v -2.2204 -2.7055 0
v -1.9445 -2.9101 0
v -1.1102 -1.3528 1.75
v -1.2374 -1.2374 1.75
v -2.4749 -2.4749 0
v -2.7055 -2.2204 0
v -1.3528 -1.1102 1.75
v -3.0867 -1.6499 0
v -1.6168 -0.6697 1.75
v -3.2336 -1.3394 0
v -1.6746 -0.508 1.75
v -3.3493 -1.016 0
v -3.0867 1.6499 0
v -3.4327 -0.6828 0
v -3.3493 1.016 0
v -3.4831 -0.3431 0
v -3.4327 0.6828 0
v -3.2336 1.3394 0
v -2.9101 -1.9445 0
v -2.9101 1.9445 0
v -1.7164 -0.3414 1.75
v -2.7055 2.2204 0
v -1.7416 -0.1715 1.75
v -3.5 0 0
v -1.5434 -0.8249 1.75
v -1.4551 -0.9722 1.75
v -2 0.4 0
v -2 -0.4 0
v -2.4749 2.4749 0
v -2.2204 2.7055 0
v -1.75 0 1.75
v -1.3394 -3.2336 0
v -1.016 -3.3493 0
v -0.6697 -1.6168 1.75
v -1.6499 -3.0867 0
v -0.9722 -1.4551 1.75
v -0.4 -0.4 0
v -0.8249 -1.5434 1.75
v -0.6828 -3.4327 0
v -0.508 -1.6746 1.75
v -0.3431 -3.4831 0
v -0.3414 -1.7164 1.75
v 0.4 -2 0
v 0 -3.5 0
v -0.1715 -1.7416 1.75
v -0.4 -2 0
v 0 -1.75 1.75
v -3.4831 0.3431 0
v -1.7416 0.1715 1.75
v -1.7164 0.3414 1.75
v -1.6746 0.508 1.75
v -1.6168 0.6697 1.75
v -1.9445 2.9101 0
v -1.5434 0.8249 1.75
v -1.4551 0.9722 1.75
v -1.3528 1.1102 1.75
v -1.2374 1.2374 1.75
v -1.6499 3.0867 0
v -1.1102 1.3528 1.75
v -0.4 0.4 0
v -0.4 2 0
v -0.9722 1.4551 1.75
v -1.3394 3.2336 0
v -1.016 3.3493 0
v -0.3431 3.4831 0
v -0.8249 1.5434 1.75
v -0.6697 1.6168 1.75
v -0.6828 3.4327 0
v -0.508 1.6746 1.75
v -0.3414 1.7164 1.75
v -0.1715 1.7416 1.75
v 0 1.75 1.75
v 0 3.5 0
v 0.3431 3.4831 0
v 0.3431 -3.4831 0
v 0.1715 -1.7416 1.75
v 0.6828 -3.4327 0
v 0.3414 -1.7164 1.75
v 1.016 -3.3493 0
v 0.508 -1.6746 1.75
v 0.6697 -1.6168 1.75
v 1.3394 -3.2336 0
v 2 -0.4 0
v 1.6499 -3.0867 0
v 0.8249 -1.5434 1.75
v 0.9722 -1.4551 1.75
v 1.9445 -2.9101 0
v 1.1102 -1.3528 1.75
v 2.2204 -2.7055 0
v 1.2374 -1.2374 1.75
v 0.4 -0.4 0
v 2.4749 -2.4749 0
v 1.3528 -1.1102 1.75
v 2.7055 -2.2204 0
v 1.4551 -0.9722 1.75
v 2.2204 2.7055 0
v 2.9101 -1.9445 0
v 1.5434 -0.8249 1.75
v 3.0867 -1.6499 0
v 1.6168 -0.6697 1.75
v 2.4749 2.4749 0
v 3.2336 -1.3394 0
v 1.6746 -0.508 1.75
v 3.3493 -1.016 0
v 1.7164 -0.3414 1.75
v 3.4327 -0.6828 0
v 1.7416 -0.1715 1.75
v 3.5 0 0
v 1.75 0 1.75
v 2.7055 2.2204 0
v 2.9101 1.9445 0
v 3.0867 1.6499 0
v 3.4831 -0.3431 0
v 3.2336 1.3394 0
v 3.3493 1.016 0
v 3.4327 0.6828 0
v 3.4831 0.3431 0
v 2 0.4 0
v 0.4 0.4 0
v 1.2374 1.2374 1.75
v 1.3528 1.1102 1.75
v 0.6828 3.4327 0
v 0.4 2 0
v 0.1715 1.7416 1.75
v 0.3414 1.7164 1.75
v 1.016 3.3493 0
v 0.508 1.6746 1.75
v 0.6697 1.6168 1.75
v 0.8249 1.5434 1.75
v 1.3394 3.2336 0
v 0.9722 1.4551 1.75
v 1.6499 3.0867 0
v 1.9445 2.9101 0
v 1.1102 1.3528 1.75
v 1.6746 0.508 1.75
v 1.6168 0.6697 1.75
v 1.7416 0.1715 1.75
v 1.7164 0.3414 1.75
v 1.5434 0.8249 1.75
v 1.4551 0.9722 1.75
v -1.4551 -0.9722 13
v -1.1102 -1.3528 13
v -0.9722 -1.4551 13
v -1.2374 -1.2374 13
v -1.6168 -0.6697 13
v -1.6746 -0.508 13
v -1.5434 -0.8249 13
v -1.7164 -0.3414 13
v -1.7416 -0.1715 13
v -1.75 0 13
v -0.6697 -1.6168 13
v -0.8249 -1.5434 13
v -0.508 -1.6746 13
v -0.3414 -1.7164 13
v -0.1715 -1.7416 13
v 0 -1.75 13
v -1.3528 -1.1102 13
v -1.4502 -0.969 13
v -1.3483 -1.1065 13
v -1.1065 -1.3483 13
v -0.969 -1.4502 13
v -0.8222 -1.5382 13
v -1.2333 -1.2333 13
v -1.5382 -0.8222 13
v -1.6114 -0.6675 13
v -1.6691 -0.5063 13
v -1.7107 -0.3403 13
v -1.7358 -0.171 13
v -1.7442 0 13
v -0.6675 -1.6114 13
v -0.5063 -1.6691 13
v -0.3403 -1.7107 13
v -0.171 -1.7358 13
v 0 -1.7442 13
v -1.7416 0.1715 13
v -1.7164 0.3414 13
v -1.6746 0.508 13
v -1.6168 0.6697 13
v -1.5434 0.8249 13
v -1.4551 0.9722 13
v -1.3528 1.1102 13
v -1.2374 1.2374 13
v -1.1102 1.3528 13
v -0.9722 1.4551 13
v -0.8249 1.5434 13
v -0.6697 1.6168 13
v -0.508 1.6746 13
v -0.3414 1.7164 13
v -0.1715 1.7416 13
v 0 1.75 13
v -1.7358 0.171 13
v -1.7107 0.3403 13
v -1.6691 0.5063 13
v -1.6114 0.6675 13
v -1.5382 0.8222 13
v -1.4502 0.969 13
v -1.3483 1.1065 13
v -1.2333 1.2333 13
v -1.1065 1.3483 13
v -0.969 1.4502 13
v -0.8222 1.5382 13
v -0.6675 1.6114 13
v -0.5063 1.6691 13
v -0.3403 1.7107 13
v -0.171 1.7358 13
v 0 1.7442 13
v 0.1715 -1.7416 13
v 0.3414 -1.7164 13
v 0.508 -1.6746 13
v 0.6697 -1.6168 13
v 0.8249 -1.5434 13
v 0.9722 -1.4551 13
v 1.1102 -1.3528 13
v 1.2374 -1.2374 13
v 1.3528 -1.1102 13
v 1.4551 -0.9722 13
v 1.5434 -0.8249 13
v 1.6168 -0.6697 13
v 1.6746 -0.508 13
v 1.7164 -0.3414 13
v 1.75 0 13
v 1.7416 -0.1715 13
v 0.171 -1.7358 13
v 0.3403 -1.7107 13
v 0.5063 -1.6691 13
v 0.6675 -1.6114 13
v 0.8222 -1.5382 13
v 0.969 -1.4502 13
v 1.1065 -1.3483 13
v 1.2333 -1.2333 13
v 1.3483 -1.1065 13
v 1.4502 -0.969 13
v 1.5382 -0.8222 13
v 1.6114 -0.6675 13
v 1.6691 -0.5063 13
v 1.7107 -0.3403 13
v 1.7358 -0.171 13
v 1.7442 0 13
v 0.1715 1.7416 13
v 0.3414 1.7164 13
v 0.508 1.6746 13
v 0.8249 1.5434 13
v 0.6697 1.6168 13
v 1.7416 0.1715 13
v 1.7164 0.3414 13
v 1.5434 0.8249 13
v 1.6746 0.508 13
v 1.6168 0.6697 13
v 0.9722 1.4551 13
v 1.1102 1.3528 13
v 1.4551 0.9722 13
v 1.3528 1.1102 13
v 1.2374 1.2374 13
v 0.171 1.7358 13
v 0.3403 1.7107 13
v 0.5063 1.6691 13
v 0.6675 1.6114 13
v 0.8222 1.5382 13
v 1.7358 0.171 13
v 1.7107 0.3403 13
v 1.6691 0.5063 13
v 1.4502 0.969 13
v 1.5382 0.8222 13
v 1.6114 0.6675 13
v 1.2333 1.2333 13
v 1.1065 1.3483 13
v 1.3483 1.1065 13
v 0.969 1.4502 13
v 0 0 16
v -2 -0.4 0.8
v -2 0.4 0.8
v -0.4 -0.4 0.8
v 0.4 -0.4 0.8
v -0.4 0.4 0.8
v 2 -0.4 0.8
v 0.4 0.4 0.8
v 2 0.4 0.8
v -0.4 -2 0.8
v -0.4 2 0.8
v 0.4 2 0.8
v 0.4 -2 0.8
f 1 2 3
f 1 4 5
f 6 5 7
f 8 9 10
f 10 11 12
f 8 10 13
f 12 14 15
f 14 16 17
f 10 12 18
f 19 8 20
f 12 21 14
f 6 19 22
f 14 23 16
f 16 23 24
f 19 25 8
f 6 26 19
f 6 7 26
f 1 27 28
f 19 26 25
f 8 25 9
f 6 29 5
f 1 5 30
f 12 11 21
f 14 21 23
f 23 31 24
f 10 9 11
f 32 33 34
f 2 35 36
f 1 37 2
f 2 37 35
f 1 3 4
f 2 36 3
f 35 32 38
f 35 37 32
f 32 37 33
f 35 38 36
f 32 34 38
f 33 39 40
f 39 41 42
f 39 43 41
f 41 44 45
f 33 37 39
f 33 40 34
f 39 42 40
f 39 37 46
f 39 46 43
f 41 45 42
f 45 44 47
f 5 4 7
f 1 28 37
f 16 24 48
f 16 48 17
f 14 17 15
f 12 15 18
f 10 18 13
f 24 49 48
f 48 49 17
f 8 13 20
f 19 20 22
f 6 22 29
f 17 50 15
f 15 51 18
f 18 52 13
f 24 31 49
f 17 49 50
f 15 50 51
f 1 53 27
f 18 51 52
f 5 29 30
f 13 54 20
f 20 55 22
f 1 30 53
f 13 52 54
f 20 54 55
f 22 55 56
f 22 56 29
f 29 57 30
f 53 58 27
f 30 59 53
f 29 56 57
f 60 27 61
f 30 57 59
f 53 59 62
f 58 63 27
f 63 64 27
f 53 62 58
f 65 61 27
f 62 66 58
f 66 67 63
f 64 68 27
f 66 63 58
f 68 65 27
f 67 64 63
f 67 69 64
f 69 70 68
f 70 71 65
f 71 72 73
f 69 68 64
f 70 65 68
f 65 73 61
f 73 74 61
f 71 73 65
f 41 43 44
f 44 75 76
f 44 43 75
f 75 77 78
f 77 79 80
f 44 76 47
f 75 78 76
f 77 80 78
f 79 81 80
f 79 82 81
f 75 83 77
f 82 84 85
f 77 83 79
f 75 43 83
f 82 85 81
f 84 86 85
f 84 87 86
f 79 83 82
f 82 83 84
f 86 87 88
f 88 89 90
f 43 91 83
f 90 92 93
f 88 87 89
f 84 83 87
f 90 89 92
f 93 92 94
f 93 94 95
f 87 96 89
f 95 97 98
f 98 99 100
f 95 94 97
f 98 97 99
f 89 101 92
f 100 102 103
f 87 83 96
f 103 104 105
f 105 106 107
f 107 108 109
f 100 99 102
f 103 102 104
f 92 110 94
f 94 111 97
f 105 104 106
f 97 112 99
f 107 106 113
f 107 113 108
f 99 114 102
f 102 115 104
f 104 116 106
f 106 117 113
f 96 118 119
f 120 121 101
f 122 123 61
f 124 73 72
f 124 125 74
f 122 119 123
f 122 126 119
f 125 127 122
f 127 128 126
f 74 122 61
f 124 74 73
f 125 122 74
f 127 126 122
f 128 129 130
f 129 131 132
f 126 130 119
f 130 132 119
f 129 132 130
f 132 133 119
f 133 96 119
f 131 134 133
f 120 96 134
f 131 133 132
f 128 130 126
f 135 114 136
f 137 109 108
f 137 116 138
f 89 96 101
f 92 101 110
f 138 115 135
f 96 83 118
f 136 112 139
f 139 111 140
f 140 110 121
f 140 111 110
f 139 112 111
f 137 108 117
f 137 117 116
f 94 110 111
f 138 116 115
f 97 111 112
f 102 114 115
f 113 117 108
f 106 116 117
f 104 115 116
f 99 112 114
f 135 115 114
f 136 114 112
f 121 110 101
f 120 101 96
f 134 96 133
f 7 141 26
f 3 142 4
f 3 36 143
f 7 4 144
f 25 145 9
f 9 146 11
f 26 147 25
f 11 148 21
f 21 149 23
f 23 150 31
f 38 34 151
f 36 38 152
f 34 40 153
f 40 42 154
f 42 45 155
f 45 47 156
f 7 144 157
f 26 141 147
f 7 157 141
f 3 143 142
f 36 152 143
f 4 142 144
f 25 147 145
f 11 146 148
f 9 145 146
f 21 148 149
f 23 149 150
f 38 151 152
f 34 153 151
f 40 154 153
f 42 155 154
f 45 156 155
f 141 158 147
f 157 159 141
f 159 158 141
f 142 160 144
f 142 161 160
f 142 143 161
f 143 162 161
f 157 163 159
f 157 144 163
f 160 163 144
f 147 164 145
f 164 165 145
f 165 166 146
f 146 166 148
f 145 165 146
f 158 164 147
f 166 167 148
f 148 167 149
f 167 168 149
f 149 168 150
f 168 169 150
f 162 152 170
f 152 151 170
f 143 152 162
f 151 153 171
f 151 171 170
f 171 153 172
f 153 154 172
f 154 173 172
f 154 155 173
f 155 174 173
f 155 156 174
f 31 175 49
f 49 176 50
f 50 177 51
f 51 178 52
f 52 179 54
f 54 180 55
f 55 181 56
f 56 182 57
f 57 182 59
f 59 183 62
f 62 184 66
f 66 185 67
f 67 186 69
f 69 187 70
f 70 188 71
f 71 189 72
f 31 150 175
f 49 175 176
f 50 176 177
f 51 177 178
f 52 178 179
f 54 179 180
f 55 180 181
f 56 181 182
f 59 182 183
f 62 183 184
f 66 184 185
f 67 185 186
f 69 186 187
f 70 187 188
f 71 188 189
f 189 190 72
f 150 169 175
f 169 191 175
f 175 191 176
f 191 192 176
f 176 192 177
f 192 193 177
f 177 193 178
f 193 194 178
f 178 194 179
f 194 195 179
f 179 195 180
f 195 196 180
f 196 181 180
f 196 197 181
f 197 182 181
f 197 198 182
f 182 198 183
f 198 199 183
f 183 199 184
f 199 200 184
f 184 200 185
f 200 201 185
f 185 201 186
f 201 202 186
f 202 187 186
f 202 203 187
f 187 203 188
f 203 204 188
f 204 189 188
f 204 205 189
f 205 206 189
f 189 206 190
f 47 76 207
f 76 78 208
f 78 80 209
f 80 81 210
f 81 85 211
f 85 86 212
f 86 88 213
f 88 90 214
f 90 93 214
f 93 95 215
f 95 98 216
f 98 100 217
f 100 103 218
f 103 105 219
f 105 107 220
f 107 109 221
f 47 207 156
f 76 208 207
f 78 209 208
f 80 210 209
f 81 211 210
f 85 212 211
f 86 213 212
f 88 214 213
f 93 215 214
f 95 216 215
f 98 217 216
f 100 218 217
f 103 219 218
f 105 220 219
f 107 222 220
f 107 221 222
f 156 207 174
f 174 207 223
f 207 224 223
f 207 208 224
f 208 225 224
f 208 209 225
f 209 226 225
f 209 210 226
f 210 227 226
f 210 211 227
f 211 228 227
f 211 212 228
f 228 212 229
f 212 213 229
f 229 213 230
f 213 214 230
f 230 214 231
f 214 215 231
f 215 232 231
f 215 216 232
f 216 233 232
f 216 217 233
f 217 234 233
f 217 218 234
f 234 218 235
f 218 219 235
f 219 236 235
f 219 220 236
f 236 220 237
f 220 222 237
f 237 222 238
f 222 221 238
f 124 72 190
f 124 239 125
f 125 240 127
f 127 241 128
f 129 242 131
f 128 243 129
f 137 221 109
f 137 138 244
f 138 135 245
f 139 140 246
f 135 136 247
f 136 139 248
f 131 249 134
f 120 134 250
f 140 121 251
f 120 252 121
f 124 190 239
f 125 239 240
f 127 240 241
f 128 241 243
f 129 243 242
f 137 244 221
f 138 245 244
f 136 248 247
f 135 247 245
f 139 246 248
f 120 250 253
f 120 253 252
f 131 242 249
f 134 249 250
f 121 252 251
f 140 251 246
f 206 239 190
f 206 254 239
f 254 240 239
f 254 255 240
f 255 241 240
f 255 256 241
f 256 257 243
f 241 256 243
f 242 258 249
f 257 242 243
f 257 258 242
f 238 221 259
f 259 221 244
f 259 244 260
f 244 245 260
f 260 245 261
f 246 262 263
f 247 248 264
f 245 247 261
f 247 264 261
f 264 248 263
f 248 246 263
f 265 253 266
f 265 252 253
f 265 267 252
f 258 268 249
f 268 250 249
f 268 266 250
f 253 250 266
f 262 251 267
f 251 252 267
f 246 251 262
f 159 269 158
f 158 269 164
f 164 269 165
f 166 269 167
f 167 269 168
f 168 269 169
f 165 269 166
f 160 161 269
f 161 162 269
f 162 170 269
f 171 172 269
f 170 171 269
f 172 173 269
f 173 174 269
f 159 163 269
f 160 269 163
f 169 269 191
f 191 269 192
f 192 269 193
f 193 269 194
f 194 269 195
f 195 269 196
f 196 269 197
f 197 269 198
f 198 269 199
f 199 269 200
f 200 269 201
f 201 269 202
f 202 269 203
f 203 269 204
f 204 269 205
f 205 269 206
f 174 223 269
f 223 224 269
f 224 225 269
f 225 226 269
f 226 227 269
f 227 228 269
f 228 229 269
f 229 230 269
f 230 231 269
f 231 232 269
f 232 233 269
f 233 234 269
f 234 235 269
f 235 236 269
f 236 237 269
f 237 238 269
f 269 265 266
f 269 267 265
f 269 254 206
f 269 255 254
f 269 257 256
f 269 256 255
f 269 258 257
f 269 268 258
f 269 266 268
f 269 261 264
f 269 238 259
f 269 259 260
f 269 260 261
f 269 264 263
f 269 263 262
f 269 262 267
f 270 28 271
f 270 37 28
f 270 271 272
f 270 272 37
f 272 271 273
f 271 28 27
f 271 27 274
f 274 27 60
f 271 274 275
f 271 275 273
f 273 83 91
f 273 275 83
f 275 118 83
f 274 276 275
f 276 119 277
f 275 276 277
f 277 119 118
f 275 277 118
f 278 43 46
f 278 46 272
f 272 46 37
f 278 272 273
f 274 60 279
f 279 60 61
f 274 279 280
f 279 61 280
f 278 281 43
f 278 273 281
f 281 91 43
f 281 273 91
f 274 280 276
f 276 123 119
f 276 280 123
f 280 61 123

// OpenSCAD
// file: native_adapter.scad
$fn = 50;

difference() {
	union() {
		translate(v = [0, 0, 0]) {
			rotate(a = [0, 0, 0]) {
				difference() {
					union() {
						translate(v = [-0.35, 0, 0]) {
							hull() {
								translate(v = [-4.4, 4.25, 0]) {
									cylinder(h = 3.0, r = 0.75);
								}
								translate(v = [4.4, 4.25, 0]) {
									cylinder(h = 3.0, r = 0.75);
								}
								translate(v = [-4.4, -4.25, 0]) {
									cylinder(h = 3.0, r = 0.75);
								}
								translate(v = [4.4, -4.25, 0]) {
									cylinder(h = 3.0, r = 0.75);
								}
							}
						}
						translate(v = [-2.5, -2.5, 2.95]) {
							cube(size = [5.0, 5.0, 3.0]);
						}
					}
					union() {
						translate(v = [0, 0, 0]) {
							rotate(a = [0, 180, 0]) {
								difference() {
									union() {
										translate(v = [0, 0, -20.0]) {
											cylinder(h = 20.0, r = 1.5);
										}
										translate(v = [0, 0, -1.9]) {
											cylinder(h = 1.9, r1 = 1.8, r2 = 3.6);
										}
										cylinder(h = 250, r = 3.6);
										translate(v = [0, 0, -20.0]) {
											cylinder(h = 20.0, r = 1.8);
										}
										translate(v = [0, 0, -20.0]) {
											cylinder(h = 20.0, r = 1.5);
										}
									}
									union();
								}
							}
						}
						translate(v = [-1.5, -3.0, 3.0]) {
							cube(size = [3.0, 6.0, 3.0500000000000003]);
						}
						translate(v = [0, 2.6, 0]) {
							rotate(a = [90, 0, 0]) {
								linear_extrude(height = 5.2) {
									polygon(points = [[-2.7, 5.3500000000000005], [-1.9, 6.15], [-2.7, 6.15]]);
								}
							}
						}
						translate(v = [0, 2.6, 0]) {
							rotate(a = [90, 0, 0]) {
								linear_extrude(height = 5.2) {
									polygon(points = [[2.7, 5.3500000000000005], [1.9, 6.15], [2.7, 6.15]]);
								}
							}
						}
						translate(v = [-4.6, -5.5, -0.1]) {
							cylinder(h = 3.2, r = 3.15);
						}
						translate(v = [-4.6, 5.5, -0.1]) {
							cylinder(h = 3.2, r = 3.15);
						}
						translate(v = [4.6, -5.5, -0.1]) {
							cylinder(h = 3.2, r = 3.15);
						}
						translate(v = [4.6, 5.5, -0.1]) {
							cylinder(h = 3.2, r = 3.15);
						}
					}
				}
			}
		}
	}
	union();
}
// file: beam_joint_geometry.scad
$fn=64;
tie_t=2.4;
module native_adapter(){
include <native_adapter.scad>
}

module joint_bores(holes,wood) {
  // Leave the OOBB countersink and pilot cheeks of each native adapter intact.
  for(p=holes) translate([p[0],p[1],-.05]) cylinder(d=7,h=tie_t+.1);
  if(len(wood)) translate(wood) {
    translate([0,0,-.05]) cylinder(d=4,h=tie_t+.1);
    translate([0,0,-.01]) cylinder(d1=7.02,d2=4,h=1.51);
  }
}

module foot(p,r) { translate(p) circle(r=r); }
module strap(a,b,ra,rb) { hull(){ foot(a,ra); foot(b,rb); } }
module beam_joint(holes,spine=[],wood=[]) {
  union(){
    for(p=holes) translate(p) intersection(){
      native_adapter();
      cylinder(r=4,h=12);
    }
    difference(){
      linear_extrude(tie_t) union(){
        if(len(wood)) strap(holes[0],wood,4,4.6);
        else if(len(spine)==0) strap(holes[0],holes[1],4,4);
        else {
          strap(spine[0],spine[1],2.65,2.65);
          for(p=holes) strap(p,[spine[0][0],p[1]],4,2.65);
        }
      }
      joint_bores(holes,wood);
    }
  }
}
// file: cabinet_geometry.scad
t=12;
inside_w=593.4000000000001;
inside_h=665.5000000000001;
cap_w=617.4000000000001;
depth=209.0;
face_t=6.0;
tie_t=2.4;
hole_x=89.3;
low_y=99.65;
stations=[22, 58.5, 104.5, 150.5, 187.0];
retainer_y=[22.599999999999994, 655.0000000000001];
$fn=64;

module cap_bores() {
  for (side=[-1,1], i=[0:4])
    translate([side*(inside_w/2+t/2),0,stations[i]]) rotate([-90,0,0])
      if (i%2==0) translate([0,0,-.01]) cylinder(d=6.1,h=8.01);
      else {
        translate([0,0,-.01]) cylinder(d=4,h=t+.02);
        translate([0,0,t-1.5]) cylinder(d1=4,d2=7.02,h=1.51);
      }
}
module side_bores() {
  for (bottom=[0,1], i=[0:4])
    translate([t/2,bottom*inside_h,stations[i]]) rotate([bottom?90:-90,0,0])
      translate([0,0,-.01]) cylinder(d=i%2?2.5:6.1,h=i%2?21.01:17.01);
  for (back=[0,1], y=retainer_y)
    translate([t/2,y,back*depth]) rotate([0,back?180:0,0])
      translate([0,0,-.01]) cylinder(d=2.5,h=16.01);
}

module cap_panel() {
  difference() {
    translate([-cap_w/2,0,0]) cube([cap_w,t,depth]);
    cap_bores();
  }
}
module side_panel() {
  difference() {
    cube([t,inside_h,depth]);
    side_bores();
  }
}
module wood_screw(length) {
  // Flush 90-degree head, nominal shank and tapered point. Thread envelope.
  difference(){
    union(){
      cylinder(h=1.75,d1=7,d2=3.5);
      translate([0,0,1.74]) cylinder(h=length-4.74,d=3.5);
      translate([0,0,length-3.01]) cylinder(h=3.01,d1=3.5,d2=0);
    }
    for(a=[0,90]) rotate([0,0,a]) translate([-2,-.4,-.01]) cube([4,.8,.81]);
  }
}
module dowel() {
  cylinder(h=.5,d1=5,d2=6);
  translate([0,0,.5]) cylinder(d=6,h=23);
  translate([0,0,23.5]) cylinder(h=.5,d1=6,d2=5);
}
// main file
include <cabinet_geometry.scad>
include <beam_joint_geometry.scad>
wood_screw(16);
